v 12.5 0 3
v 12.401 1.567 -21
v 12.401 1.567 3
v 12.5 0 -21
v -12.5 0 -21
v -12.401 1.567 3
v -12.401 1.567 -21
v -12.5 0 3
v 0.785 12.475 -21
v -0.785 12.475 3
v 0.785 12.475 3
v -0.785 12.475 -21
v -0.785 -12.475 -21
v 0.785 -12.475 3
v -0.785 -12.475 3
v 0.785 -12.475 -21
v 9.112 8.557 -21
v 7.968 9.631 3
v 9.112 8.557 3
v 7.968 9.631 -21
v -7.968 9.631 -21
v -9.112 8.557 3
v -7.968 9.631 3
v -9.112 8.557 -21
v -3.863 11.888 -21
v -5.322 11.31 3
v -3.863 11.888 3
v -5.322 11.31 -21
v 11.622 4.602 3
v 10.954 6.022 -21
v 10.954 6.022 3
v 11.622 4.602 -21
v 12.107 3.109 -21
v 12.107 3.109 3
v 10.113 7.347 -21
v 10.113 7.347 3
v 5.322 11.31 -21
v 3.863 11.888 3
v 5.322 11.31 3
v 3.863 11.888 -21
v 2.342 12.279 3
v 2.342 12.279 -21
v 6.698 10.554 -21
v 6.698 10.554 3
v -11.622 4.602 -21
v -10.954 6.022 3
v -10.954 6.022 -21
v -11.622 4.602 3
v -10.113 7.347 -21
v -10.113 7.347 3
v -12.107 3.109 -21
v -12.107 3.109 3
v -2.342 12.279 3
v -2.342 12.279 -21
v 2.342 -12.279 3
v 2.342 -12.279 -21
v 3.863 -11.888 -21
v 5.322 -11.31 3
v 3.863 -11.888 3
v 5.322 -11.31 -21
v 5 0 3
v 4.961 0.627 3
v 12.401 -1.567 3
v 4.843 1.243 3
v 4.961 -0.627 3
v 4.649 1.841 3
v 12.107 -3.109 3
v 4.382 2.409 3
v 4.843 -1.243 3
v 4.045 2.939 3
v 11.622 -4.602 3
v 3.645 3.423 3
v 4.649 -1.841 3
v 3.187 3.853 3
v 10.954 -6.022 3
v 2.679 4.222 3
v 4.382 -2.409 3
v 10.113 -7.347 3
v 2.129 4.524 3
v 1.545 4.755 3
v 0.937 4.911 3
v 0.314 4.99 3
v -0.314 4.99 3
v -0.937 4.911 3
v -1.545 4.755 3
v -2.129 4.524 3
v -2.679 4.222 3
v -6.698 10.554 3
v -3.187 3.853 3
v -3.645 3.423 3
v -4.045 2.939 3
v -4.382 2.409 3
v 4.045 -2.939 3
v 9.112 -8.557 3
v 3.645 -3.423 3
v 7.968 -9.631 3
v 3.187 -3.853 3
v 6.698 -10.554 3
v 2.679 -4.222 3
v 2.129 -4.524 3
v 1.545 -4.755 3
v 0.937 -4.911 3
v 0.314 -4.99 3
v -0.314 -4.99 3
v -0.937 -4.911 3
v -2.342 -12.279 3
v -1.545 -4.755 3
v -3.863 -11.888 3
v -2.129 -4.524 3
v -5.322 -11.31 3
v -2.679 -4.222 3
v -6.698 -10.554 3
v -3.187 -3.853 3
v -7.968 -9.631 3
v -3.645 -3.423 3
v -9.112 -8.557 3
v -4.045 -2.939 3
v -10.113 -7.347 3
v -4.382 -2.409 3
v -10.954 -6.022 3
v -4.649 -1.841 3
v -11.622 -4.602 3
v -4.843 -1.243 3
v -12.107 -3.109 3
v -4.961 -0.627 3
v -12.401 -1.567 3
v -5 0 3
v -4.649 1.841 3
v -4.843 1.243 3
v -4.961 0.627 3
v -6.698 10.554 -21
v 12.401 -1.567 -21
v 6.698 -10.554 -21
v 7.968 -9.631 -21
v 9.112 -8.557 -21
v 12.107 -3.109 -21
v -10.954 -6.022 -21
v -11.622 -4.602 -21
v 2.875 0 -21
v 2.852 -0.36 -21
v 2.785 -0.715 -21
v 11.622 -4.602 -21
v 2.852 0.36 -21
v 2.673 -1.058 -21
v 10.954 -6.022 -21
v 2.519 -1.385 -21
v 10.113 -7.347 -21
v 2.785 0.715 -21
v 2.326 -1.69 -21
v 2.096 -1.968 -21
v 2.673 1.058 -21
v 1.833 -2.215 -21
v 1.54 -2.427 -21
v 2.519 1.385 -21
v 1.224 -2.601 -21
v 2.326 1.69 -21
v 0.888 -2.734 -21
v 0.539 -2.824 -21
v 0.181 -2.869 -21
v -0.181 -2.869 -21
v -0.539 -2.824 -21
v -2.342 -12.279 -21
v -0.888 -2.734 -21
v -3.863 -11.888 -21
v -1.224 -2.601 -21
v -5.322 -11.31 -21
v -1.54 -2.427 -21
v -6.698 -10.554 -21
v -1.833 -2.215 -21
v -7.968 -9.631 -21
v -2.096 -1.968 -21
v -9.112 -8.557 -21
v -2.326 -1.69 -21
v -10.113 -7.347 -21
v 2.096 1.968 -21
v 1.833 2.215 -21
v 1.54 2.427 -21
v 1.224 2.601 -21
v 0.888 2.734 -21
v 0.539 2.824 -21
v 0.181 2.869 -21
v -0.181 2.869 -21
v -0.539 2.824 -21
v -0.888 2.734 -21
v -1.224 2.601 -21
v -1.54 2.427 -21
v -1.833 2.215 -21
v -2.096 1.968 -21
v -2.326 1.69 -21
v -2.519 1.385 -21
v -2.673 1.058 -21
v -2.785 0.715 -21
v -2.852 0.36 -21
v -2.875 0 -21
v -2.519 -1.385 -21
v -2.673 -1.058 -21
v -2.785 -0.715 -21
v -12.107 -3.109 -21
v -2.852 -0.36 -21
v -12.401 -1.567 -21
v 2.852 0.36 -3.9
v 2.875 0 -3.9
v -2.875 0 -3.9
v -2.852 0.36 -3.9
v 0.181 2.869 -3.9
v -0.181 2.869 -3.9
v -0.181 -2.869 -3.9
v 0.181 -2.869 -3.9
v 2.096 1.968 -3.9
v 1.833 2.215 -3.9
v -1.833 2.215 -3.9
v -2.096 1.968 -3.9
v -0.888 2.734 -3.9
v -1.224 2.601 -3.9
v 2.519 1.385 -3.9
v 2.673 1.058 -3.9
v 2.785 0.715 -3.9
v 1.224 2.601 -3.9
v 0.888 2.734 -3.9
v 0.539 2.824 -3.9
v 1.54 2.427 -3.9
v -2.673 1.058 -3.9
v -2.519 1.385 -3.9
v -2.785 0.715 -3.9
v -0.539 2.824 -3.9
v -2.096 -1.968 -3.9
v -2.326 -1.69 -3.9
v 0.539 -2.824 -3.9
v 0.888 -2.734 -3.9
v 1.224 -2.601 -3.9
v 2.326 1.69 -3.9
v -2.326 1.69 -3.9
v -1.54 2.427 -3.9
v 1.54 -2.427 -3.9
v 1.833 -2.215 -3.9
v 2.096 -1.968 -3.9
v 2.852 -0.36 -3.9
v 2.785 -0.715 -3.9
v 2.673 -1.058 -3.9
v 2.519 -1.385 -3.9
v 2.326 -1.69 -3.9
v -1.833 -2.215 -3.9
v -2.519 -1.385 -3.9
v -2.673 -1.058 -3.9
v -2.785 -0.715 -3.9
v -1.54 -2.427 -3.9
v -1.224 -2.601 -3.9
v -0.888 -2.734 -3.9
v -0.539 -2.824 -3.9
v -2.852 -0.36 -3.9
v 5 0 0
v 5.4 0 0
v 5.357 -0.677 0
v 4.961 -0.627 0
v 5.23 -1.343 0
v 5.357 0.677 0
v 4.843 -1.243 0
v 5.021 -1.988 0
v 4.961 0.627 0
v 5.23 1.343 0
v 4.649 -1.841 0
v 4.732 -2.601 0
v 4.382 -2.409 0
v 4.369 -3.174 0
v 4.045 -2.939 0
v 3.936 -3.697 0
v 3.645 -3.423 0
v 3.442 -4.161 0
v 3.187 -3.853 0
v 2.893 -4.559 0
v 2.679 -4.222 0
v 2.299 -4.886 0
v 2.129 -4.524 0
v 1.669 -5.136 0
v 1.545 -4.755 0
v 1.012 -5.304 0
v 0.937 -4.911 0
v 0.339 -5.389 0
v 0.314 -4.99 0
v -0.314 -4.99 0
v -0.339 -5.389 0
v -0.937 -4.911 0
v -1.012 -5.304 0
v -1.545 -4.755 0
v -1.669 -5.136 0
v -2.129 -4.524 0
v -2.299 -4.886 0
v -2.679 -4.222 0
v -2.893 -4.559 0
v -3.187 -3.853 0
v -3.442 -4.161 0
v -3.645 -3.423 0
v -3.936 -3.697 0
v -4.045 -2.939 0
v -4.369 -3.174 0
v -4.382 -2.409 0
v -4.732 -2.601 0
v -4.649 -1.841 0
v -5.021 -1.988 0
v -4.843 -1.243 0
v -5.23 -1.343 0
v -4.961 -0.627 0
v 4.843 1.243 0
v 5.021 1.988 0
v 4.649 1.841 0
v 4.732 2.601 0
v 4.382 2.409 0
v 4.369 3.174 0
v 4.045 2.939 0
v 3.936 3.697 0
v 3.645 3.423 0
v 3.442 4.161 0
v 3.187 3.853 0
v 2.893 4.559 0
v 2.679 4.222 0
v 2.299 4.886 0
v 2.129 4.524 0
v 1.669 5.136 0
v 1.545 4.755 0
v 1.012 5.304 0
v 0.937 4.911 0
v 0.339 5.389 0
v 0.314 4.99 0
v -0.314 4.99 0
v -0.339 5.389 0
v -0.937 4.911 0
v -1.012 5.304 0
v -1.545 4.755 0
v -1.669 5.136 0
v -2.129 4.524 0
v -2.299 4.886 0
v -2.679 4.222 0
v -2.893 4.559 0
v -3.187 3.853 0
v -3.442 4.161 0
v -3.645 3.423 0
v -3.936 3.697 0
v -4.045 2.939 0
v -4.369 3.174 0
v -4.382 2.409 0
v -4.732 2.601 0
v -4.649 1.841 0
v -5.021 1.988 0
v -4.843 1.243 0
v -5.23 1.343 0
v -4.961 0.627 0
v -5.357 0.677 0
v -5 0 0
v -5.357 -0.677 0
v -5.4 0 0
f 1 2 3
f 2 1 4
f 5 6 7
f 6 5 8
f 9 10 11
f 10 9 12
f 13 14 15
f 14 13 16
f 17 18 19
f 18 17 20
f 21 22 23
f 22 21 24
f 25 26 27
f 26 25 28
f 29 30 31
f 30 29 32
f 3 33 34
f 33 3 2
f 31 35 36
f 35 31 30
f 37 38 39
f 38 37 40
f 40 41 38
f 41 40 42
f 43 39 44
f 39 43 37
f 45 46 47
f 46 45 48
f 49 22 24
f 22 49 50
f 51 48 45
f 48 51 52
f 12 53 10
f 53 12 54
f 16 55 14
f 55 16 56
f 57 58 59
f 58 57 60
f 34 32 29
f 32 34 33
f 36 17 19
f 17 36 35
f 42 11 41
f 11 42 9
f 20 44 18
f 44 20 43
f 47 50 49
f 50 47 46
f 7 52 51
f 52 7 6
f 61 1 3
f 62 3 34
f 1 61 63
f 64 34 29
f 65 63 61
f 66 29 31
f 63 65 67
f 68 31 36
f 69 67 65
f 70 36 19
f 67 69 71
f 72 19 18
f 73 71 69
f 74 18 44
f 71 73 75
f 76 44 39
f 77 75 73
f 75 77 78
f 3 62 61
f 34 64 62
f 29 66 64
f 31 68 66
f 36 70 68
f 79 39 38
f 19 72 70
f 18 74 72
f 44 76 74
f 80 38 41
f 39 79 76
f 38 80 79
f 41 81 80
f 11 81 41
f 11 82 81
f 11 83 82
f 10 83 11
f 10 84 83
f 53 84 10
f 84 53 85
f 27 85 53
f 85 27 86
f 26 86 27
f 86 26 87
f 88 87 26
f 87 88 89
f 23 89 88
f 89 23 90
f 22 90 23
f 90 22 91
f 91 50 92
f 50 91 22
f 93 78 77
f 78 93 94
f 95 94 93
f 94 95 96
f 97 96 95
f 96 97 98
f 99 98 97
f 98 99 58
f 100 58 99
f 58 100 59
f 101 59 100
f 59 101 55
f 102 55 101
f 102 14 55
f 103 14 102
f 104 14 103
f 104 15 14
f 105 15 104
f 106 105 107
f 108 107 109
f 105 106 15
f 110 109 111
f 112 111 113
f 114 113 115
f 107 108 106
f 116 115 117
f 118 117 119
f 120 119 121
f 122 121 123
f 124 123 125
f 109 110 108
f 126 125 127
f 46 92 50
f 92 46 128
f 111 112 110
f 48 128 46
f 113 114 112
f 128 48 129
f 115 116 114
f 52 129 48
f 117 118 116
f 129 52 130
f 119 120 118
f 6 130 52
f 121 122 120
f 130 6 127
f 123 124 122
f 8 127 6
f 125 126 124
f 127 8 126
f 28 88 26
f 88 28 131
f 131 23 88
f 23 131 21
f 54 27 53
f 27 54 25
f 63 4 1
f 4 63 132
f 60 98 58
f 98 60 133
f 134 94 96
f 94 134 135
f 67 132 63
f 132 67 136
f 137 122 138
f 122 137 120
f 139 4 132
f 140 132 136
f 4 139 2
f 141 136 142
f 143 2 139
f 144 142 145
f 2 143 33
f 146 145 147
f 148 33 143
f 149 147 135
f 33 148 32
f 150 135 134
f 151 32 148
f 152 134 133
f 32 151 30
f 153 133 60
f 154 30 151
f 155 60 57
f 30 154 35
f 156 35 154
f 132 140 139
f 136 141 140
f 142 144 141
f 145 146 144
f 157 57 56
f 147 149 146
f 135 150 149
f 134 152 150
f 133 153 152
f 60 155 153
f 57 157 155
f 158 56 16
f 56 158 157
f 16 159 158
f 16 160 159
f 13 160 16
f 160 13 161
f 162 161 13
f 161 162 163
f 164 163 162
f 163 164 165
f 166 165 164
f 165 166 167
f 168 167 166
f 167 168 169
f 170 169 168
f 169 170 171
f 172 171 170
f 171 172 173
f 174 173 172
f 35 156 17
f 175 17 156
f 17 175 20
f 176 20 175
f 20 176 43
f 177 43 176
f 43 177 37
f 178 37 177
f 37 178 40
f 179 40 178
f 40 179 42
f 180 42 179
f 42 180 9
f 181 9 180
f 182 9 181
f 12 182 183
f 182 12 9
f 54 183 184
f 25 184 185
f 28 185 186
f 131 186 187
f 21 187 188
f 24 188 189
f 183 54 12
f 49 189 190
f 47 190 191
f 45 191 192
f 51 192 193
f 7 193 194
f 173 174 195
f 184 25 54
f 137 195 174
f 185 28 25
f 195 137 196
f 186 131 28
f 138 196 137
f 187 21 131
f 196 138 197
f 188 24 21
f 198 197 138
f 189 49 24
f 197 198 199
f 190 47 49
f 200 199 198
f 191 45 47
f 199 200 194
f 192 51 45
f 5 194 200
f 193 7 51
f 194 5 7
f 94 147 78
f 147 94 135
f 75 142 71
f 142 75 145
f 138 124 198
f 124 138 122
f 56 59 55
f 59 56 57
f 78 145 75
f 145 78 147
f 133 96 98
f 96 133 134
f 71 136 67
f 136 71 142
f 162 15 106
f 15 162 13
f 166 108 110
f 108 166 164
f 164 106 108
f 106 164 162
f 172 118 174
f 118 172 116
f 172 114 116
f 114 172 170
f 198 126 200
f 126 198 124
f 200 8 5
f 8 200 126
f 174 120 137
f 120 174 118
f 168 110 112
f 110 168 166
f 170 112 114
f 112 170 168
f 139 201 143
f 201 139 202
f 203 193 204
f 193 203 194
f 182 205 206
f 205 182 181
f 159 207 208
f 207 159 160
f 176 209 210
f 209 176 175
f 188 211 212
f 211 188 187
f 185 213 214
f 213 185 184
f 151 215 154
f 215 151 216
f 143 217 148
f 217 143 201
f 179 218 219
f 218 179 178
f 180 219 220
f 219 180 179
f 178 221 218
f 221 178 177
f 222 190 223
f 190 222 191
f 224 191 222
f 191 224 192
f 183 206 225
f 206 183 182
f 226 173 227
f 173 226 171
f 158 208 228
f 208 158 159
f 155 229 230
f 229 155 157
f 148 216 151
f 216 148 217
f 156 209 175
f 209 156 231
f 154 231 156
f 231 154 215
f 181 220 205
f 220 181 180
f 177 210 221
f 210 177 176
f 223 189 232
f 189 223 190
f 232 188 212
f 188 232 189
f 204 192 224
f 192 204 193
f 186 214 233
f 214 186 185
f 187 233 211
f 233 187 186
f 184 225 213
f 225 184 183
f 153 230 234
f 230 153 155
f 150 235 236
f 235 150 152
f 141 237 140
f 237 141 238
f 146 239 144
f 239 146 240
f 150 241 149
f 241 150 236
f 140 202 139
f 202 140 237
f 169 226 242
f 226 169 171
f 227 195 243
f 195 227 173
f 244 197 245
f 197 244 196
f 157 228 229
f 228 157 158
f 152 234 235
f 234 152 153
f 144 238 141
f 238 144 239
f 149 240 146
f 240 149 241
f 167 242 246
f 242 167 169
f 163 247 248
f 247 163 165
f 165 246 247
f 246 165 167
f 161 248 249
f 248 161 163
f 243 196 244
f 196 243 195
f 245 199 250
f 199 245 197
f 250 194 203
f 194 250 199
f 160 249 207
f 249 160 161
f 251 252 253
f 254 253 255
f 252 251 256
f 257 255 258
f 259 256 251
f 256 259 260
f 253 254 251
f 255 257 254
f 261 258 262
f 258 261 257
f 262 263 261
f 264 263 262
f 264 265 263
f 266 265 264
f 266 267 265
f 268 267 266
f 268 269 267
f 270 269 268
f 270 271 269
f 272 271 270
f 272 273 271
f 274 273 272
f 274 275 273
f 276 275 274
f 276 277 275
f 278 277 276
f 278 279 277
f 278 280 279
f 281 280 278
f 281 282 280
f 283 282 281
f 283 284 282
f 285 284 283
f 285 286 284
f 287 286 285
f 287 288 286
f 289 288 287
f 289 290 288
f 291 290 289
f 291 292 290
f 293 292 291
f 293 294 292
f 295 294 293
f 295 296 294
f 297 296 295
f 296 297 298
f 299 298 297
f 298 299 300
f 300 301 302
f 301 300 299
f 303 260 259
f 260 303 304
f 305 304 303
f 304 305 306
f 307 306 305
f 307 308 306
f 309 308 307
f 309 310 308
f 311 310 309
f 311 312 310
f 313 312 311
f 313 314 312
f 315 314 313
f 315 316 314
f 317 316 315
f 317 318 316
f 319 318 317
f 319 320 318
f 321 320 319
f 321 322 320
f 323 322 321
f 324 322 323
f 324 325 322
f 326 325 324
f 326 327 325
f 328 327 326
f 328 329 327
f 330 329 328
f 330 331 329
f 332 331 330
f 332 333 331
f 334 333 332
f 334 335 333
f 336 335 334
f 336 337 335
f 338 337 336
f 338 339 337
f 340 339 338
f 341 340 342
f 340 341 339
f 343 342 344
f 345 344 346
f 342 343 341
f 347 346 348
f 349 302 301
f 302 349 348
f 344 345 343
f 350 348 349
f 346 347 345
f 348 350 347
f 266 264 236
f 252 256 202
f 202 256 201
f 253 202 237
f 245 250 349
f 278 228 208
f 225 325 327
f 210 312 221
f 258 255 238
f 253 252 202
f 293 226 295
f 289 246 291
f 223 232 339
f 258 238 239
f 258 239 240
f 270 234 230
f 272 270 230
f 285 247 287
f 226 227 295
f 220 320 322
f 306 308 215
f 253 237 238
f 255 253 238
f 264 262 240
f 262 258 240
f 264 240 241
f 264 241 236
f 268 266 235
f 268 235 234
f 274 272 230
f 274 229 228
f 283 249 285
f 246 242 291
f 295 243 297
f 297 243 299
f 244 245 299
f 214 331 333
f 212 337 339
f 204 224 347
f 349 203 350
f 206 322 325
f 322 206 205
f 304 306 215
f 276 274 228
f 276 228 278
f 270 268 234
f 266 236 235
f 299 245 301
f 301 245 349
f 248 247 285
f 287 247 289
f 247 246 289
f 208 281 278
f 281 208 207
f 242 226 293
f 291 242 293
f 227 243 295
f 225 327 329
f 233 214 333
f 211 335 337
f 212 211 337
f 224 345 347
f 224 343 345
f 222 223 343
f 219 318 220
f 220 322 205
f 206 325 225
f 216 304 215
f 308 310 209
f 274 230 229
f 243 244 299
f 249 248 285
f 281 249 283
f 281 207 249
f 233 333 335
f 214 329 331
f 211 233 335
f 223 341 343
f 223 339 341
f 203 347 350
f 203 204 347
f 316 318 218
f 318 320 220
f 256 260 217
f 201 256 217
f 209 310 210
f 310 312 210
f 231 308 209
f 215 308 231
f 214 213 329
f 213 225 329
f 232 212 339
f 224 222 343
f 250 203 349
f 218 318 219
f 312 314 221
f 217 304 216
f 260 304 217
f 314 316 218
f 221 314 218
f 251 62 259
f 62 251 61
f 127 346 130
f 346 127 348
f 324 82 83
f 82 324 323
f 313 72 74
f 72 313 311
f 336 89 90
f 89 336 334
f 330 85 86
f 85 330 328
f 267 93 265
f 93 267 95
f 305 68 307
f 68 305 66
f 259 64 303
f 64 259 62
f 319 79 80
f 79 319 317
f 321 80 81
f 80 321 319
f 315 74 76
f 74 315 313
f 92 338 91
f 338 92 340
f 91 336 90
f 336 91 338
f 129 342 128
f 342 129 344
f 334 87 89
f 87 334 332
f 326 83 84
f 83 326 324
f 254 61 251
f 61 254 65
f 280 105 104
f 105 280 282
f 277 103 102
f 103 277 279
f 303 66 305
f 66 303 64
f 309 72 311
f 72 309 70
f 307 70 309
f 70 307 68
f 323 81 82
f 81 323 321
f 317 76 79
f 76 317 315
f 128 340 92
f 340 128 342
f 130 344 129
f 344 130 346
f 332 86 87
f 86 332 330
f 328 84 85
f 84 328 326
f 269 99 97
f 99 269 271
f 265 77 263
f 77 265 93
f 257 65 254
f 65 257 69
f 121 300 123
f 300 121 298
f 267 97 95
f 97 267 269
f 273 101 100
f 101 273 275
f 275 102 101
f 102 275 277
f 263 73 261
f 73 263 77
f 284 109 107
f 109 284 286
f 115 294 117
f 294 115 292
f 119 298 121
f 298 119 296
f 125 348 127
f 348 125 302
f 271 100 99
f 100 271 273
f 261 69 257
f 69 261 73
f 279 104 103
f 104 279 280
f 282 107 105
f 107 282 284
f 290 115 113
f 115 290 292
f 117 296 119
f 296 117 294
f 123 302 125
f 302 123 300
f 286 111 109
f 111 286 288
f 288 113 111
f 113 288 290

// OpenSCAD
$fn = 50;

difference() {
	union() {
		translate(v = [0, 0, -21.0]) {
			cylinder(h = 24, r = 12.5);
		}
		#translate(v = [0, 0, -24.0]) {
			cylinder(h = 24, r = 2.875);
		}
	}
	union() {
		translate(v = [0, 0, 0]) {
			rotate(a = [0, 0, 0]) {
				difference() {
					union() {
						translate(v = [0, 0, -24.0]) {
							cylinder(h = 24, r = 2.6);
						}
						translate(v = [0, 0, -3.9]) {
							cylinder(h = 3.9, r1 = 2.875, r2 = 5.4);
						}
						translate(v = [0, 0, -24.0]) {
							cylinder(h = 24, r = 2.875);
						}
						translate(v = [0, 0, -24.0]) {
							cylinder(h = 24, r = 2.6);
						}
					}
					union();
				}
			}
		}
		#cylinder(h = 3, r = 5.0);
	}
}
